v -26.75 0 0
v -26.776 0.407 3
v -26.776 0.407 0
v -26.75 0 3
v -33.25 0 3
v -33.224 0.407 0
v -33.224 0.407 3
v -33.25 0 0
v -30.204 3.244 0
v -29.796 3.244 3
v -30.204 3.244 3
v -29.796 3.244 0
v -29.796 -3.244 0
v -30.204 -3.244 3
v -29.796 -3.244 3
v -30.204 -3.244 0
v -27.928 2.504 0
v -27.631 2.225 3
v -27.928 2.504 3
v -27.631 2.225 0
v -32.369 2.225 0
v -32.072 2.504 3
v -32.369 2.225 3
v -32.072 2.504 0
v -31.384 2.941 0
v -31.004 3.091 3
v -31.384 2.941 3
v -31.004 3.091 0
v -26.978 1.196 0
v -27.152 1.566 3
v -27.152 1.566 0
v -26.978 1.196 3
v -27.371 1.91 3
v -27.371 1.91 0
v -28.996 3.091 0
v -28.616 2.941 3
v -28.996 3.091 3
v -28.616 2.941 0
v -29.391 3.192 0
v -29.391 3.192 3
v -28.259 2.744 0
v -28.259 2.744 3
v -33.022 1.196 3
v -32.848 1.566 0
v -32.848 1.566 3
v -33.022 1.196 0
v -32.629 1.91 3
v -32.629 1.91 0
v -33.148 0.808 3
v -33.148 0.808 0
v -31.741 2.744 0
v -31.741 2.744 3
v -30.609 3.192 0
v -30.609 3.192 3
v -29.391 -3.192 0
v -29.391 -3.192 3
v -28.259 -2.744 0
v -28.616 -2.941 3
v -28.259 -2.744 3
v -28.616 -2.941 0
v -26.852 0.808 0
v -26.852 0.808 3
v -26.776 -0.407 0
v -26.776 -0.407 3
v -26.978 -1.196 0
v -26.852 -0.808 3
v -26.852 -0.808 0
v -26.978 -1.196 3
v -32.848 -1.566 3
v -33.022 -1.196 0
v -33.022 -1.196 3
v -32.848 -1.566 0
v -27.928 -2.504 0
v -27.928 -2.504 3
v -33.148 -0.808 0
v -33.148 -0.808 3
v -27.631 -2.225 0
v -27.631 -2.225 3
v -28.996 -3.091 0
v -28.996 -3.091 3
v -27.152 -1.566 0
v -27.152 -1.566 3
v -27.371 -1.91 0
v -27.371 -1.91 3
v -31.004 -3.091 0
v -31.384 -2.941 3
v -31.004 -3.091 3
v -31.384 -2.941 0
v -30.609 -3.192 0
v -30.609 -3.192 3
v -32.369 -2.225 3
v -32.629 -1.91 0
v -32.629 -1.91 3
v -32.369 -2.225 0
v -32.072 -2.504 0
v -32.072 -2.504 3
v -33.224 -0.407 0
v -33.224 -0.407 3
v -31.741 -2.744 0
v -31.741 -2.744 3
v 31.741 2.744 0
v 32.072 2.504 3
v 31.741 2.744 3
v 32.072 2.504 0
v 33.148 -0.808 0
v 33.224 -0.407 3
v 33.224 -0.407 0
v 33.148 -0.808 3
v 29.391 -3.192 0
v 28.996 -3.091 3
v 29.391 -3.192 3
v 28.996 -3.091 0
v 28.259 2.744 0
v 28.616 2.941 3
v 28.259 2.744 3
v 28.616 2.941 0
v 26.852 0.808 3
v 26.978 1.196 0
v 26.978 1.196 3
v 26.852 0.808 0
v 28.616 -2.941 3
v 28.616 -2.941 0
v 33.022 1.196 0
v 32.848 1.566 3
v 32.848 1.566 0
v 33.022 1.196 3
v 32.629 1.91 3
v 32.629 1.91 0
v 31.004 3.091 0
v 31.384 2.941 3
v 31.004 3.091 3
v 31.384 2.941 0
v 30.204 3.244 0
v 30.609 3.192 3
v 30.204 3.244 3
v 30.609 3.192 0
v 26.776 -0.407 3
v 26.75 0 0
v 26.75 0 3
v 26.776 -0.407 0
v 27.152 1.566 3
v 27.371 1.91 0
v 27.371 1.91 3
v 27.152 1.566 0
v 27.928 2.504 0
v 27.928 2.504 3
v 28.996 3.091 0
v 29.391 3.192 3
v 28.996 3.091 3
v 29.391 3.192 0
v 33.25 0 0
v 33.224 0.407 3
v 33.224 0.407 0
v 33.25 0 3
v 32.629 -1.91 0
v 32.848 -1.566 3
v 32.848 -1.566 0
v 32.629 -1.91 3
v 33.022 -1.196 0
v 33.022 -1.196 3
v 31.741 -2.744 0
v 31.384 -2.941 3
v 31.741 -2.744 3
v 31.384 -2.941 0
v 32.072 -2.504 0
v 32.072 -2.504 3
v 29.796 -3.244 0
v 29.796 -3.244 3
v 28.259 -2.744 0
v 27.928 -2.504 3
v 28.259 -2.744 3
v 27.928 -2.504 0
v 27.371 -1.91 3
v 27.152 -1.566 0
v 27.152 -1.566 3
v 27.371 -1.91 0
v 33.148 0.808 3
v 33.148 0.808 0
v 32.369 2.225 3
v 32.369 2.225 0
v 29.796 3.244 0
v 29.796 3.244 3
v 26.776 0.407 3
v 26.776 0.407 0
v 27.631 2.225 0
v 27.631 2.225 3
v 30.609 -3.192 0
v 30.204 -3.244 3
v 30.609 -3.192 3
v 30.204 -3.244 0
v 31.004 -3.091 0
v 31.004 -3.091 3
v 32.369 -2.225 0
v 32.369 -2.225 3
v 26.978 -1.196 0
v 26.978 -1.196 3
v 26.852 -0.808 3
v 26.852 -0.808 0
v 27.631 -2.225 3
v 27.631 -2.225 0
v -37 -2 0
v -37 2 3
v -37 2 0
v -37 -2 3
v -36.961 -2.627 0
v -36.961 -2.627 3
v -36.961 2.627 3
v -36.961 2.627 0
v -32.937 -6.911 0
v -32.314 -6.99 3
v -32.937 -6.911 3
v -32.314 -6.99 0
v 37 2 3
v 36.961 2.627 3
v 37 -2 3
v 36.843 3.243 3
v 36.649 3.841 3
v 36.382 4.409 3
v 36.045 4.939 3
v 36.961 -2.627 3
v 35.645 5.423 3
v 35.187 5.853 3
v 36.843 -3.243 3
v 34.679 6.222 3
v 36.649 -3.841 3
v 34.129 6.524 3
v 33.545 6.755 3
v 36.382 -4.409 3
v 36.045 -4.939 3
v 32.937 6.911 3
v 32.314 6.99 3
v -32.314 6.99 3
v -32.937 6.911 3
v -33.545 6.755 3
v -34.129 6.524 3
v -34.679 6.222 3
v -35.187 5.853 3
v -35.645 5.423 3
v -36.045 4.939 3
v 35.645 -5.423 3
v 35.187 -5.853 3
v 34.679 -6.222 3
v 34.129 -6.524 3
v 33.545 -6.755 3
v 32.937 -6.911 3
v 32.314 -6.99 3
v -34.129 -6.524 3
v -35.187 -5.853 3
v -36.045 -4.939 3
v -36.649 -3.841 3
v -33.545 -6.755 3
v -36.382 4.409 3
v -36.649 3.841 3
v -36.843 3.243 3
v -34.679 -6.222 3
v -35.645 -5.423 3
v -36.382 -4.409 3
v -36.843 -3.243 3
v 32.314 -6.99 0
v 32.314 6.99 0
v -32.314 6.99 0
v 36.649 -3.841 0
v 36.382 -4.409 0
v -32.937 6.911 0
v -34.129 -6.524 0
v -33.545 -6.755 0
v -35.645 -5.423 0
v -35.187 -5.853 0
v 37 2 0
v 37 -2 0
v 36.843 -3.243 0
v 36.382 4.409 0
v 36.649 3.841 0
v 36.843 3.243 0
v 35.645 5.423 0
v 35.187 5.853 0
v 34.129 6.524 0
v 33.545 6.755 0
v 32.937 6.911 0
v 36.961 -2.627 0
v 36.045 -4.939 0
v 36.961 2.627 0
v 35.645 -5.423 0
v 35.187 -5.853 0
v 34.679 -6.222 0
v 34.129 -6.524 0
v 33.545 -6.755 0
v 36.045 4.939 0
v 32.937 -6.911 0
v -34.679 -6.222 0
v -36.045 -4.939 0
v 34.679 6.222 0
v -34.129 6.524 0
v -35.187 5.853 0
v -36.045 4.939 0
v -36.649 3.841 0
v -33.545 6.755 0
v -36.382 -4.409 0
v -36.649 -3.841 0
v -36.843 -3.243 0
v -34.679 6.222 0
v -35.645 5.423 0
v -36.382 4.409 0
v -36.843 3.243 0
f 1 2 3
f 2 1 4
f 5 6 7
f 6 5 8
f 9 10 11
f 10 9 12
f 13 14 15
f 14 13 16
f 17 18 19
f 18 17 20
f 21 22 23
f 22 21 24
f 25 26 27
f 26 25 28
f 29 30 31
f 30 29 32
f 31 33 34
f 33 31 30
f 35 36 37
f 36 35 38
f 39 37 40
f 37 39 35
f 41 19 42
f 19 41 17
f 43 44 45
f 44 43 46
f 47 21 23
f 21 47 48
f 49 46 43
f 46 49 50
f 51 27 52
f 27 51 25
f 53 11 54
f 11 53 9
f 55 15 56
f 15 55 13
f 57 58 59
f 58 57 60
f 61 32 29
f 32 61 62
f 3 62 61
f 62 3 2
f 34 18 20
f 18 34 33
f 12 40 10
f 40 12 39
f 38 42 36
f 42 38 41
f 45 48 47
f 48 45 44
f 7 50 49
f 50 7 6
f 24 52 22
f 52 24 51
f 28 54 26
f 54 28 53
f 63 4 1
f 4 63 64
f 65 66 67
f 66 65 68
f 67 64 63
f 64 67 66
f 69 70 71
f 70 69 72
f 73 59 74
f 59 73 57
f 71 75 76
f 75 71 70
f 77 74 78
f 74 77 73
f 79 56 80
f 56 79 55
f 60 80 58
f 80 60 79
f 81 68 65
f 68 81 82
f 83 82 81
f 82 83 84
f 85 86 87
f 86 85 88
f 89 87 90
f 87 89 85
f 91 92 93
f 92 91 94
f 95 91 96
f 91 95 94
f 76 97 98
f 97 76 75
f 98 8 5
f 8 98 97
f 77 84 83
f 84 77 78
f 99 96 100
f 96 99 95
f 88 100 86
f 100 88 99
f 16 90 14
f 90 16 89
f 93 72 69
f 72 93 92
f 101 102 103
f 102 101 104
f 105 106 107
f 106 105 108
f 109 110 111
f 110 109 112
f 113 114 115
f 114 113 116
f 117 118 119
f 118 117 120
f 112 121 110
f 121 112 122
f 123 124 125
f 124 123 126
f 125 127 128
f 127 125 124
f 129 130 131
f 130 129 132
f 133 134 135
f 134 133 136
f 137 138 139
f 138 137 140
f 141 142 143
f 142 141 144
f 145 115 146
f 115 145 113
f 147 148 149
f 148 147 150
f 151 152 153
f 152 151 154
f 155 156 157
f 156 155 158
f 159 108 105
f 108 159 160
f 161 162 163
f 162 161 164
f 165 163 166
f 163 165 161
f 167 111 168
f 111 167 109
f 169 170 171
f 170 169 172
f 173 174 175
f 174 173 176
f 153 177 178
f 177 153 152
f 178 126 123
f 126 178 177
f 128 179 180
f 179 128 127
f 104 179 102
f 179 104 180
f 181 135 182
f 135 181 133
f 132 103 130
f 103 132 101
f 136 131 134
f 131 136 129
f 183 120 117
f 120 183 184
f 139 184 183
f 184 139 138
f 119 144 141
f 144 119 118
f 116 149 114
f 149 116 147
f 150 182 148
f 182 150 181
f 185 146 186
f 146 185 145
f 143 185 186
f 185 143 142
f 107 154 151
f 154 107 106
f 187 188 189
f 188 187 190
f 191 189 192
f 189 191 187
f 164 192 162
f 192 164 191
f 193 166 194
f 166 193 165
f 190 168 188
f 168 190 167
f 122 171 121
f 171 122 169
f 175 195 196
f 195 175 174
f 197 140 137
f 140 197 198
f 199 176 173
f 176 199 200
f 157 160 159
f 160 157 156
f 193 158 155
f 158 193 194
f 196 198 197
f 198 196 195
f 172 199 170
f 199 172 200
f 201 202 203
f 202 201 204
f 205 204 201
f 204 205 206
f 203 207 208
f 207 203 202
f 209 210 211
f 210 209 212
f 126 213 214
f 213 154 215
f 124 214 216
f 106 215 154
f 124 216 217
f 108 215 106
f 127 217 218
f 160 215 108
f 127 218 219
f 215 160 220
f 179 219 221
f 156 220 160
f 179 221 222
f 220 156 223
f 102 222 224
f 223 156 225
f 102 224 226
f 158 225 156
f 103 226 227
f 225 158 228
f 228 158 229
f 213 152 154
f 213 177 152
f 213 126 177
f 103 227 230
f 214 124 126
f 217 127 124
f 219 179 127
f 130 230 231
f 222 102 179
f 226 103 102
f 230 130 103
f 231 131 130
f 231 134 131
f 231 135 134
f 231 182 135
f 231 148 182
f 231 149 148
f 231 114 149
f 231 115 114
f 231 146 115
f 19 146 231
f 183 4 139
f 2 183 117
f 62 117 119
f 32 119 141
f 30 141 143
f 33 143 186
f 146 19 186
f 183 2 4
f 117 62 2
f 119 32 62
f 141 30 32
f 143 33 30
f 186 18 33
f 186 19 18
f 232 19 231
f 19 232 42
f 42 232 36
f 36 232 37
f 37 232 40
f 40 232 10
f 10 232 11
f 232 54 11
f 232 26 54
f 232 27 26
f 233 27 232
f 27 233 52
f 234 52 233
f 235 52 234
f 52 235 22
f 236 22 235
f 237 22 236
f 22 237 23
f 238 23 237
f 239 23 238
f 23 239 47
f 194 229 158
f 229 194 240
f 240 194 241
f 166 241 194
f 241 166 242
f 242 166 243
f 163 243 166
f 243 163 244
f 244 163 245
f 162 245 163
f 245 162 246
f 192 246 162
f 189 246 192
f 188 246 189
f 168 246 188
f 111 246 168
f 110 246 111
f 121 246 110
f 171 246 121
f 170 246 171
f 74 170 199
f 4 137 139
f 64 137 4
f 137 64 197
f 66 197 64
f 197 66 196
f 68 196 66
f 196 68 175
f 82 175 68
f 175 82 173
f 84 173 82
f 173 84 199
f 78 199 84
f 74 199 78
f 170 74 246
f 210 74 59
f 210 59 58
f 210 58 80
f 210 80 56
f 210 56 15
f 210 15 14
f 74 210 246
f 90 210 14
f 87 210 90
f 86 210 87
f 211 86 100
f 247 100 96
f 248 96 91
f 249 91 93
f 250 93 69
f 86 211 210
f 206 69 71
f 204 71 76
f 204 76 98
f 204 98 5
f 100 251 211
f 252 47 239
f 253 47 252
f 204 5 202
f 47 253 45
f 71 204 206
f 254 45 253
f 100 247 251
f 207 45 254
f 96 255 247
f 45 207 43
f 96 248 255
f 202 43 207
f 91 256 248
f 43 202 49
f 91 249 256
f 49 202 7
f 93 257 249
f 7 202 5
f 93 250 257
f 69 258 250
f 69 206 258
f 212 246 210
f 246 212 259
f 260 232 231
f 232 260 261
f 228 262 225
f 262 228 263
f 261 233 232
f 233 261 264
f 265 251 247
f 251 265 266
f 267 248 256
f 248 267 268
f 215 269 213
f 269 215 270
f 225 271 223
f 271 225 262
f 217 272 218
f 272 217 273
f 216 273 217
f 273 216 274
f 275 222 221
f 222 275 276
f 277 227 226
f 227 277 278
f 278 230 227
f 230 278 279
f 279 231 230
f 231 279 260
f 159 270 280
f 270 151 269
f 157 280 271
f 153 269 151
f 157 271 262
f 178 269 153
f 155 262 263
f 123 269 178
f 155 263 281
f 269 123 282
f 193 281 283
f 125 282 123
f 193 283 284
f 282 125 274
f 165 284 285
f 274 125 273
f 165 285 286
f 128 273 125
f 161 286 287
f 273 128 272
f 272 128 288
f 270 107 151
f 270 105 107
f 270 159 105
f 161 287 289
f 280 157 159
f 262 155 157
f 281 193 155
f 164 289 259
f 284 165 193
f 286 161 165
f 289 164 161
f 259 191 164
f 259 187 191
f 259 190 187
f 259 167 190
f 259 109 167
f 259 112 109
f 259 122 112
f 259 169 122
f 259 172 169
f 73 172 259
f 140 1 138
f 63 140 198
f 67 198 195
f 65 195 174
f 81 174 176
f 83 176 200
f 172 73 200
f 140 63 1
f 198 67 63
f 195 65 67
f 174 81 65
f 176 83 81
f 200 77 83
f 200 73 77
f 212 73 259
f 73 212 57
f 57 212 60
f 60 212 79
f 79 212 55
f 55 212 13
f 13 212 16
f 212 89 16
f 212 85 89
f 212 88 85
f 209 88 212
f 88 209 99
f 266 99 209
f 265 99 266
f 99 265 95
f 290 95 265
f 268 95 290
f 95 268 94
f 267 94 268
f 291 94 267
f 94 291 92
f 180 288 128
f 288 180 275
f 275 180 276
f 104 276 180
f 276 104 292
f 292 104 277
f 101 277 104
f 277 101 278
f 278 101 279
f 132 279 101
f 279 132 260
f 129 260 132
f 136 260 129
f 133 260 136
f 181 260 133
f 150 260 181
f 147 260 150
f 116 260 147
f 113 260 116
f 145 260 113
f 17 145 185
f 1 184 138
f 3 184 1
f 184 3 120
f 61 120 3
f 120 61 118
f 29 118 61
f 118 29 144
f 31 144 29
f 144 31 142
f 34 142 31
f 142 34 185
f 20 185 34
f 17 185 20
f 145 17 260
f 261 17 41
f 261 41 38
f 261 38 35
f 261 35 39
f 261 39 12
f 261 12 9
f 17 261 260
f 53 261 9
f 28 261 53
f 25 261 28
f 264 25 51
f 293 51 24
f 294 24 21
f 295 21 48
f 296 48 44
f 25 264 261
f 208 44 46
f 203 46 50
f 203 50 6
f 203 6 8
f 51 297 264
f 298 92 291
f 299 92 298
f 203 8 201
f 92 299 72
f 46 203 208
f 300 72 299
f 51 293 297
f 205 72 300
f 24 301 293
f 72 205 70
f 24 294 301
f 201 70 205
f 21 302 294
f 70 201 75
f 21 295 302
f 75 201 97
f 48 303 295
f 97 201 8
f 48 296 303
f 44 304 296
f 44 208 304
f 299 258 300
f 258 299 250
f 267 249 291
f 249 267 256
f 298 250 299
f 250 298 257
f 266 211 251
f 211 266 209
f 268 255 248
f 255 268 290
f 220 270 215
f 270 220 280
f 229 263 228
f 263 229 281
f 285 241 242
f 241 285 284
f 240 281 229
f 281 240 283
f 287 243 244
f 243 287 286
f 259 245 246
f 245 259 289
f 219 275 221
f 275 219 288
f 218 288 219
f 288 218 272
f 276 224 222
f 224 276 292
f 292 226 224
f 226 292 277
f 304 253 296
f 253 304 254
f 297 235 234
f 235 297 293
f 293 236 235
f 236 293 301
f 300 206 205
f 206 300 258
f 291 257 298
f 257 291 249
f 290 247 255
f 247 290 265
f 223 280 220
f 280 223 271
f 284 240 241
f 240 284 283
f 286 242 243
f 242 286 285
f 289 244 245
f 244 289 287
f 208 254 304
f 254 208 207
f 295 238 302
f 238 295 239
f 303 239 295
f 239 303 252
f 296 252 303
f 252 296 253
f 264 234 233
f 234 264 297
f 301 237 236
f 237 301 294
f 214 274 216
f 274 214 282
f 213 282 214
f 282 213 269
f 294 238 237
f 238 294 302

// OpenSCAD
$fn = 50;


difference() {
	union() {
		hull() {
			translate(v = [-32.0000000000, 2.0000000000, 0]) {
				cylinder(h = 3, r = 5);
			}
			translate(v = [32.0000000000, 2.0000000000, 0]) {
				cylinder(h = 3, r = 5);
			}
			translate(v = [-32.0000000000, -2.0000000000, 0]) {
				cylinder(h = 3, r = 5);
			}
			translate(v = [32.0000000000, -2.0000000000, 0]) {
				cylinder(h = 3, r = 5);
			}
		}
	}
	union() {
		translate(v = [-30.0000000000, 0.0000000000, -100.0000000000]) {
			cylinder(h = 200, r = 3.2500000000);
		}
		translate(v = [-30.0000000000, 0.0000000000, -100.0000000000]) {
			cylinder(h = 200, r = 3.2500000000);
		}
		translate(v = [30.0000000000, 0.0000000000, -100.0000000000]) {
			cylinder(h = 200, r = 3.2500000000);
		}
		translate(v = [30.0000000000, 0.0000000000, -100.0000000000]) {
			cylinder(h = 200, r = 3.2500000000);
		}
	}
}
